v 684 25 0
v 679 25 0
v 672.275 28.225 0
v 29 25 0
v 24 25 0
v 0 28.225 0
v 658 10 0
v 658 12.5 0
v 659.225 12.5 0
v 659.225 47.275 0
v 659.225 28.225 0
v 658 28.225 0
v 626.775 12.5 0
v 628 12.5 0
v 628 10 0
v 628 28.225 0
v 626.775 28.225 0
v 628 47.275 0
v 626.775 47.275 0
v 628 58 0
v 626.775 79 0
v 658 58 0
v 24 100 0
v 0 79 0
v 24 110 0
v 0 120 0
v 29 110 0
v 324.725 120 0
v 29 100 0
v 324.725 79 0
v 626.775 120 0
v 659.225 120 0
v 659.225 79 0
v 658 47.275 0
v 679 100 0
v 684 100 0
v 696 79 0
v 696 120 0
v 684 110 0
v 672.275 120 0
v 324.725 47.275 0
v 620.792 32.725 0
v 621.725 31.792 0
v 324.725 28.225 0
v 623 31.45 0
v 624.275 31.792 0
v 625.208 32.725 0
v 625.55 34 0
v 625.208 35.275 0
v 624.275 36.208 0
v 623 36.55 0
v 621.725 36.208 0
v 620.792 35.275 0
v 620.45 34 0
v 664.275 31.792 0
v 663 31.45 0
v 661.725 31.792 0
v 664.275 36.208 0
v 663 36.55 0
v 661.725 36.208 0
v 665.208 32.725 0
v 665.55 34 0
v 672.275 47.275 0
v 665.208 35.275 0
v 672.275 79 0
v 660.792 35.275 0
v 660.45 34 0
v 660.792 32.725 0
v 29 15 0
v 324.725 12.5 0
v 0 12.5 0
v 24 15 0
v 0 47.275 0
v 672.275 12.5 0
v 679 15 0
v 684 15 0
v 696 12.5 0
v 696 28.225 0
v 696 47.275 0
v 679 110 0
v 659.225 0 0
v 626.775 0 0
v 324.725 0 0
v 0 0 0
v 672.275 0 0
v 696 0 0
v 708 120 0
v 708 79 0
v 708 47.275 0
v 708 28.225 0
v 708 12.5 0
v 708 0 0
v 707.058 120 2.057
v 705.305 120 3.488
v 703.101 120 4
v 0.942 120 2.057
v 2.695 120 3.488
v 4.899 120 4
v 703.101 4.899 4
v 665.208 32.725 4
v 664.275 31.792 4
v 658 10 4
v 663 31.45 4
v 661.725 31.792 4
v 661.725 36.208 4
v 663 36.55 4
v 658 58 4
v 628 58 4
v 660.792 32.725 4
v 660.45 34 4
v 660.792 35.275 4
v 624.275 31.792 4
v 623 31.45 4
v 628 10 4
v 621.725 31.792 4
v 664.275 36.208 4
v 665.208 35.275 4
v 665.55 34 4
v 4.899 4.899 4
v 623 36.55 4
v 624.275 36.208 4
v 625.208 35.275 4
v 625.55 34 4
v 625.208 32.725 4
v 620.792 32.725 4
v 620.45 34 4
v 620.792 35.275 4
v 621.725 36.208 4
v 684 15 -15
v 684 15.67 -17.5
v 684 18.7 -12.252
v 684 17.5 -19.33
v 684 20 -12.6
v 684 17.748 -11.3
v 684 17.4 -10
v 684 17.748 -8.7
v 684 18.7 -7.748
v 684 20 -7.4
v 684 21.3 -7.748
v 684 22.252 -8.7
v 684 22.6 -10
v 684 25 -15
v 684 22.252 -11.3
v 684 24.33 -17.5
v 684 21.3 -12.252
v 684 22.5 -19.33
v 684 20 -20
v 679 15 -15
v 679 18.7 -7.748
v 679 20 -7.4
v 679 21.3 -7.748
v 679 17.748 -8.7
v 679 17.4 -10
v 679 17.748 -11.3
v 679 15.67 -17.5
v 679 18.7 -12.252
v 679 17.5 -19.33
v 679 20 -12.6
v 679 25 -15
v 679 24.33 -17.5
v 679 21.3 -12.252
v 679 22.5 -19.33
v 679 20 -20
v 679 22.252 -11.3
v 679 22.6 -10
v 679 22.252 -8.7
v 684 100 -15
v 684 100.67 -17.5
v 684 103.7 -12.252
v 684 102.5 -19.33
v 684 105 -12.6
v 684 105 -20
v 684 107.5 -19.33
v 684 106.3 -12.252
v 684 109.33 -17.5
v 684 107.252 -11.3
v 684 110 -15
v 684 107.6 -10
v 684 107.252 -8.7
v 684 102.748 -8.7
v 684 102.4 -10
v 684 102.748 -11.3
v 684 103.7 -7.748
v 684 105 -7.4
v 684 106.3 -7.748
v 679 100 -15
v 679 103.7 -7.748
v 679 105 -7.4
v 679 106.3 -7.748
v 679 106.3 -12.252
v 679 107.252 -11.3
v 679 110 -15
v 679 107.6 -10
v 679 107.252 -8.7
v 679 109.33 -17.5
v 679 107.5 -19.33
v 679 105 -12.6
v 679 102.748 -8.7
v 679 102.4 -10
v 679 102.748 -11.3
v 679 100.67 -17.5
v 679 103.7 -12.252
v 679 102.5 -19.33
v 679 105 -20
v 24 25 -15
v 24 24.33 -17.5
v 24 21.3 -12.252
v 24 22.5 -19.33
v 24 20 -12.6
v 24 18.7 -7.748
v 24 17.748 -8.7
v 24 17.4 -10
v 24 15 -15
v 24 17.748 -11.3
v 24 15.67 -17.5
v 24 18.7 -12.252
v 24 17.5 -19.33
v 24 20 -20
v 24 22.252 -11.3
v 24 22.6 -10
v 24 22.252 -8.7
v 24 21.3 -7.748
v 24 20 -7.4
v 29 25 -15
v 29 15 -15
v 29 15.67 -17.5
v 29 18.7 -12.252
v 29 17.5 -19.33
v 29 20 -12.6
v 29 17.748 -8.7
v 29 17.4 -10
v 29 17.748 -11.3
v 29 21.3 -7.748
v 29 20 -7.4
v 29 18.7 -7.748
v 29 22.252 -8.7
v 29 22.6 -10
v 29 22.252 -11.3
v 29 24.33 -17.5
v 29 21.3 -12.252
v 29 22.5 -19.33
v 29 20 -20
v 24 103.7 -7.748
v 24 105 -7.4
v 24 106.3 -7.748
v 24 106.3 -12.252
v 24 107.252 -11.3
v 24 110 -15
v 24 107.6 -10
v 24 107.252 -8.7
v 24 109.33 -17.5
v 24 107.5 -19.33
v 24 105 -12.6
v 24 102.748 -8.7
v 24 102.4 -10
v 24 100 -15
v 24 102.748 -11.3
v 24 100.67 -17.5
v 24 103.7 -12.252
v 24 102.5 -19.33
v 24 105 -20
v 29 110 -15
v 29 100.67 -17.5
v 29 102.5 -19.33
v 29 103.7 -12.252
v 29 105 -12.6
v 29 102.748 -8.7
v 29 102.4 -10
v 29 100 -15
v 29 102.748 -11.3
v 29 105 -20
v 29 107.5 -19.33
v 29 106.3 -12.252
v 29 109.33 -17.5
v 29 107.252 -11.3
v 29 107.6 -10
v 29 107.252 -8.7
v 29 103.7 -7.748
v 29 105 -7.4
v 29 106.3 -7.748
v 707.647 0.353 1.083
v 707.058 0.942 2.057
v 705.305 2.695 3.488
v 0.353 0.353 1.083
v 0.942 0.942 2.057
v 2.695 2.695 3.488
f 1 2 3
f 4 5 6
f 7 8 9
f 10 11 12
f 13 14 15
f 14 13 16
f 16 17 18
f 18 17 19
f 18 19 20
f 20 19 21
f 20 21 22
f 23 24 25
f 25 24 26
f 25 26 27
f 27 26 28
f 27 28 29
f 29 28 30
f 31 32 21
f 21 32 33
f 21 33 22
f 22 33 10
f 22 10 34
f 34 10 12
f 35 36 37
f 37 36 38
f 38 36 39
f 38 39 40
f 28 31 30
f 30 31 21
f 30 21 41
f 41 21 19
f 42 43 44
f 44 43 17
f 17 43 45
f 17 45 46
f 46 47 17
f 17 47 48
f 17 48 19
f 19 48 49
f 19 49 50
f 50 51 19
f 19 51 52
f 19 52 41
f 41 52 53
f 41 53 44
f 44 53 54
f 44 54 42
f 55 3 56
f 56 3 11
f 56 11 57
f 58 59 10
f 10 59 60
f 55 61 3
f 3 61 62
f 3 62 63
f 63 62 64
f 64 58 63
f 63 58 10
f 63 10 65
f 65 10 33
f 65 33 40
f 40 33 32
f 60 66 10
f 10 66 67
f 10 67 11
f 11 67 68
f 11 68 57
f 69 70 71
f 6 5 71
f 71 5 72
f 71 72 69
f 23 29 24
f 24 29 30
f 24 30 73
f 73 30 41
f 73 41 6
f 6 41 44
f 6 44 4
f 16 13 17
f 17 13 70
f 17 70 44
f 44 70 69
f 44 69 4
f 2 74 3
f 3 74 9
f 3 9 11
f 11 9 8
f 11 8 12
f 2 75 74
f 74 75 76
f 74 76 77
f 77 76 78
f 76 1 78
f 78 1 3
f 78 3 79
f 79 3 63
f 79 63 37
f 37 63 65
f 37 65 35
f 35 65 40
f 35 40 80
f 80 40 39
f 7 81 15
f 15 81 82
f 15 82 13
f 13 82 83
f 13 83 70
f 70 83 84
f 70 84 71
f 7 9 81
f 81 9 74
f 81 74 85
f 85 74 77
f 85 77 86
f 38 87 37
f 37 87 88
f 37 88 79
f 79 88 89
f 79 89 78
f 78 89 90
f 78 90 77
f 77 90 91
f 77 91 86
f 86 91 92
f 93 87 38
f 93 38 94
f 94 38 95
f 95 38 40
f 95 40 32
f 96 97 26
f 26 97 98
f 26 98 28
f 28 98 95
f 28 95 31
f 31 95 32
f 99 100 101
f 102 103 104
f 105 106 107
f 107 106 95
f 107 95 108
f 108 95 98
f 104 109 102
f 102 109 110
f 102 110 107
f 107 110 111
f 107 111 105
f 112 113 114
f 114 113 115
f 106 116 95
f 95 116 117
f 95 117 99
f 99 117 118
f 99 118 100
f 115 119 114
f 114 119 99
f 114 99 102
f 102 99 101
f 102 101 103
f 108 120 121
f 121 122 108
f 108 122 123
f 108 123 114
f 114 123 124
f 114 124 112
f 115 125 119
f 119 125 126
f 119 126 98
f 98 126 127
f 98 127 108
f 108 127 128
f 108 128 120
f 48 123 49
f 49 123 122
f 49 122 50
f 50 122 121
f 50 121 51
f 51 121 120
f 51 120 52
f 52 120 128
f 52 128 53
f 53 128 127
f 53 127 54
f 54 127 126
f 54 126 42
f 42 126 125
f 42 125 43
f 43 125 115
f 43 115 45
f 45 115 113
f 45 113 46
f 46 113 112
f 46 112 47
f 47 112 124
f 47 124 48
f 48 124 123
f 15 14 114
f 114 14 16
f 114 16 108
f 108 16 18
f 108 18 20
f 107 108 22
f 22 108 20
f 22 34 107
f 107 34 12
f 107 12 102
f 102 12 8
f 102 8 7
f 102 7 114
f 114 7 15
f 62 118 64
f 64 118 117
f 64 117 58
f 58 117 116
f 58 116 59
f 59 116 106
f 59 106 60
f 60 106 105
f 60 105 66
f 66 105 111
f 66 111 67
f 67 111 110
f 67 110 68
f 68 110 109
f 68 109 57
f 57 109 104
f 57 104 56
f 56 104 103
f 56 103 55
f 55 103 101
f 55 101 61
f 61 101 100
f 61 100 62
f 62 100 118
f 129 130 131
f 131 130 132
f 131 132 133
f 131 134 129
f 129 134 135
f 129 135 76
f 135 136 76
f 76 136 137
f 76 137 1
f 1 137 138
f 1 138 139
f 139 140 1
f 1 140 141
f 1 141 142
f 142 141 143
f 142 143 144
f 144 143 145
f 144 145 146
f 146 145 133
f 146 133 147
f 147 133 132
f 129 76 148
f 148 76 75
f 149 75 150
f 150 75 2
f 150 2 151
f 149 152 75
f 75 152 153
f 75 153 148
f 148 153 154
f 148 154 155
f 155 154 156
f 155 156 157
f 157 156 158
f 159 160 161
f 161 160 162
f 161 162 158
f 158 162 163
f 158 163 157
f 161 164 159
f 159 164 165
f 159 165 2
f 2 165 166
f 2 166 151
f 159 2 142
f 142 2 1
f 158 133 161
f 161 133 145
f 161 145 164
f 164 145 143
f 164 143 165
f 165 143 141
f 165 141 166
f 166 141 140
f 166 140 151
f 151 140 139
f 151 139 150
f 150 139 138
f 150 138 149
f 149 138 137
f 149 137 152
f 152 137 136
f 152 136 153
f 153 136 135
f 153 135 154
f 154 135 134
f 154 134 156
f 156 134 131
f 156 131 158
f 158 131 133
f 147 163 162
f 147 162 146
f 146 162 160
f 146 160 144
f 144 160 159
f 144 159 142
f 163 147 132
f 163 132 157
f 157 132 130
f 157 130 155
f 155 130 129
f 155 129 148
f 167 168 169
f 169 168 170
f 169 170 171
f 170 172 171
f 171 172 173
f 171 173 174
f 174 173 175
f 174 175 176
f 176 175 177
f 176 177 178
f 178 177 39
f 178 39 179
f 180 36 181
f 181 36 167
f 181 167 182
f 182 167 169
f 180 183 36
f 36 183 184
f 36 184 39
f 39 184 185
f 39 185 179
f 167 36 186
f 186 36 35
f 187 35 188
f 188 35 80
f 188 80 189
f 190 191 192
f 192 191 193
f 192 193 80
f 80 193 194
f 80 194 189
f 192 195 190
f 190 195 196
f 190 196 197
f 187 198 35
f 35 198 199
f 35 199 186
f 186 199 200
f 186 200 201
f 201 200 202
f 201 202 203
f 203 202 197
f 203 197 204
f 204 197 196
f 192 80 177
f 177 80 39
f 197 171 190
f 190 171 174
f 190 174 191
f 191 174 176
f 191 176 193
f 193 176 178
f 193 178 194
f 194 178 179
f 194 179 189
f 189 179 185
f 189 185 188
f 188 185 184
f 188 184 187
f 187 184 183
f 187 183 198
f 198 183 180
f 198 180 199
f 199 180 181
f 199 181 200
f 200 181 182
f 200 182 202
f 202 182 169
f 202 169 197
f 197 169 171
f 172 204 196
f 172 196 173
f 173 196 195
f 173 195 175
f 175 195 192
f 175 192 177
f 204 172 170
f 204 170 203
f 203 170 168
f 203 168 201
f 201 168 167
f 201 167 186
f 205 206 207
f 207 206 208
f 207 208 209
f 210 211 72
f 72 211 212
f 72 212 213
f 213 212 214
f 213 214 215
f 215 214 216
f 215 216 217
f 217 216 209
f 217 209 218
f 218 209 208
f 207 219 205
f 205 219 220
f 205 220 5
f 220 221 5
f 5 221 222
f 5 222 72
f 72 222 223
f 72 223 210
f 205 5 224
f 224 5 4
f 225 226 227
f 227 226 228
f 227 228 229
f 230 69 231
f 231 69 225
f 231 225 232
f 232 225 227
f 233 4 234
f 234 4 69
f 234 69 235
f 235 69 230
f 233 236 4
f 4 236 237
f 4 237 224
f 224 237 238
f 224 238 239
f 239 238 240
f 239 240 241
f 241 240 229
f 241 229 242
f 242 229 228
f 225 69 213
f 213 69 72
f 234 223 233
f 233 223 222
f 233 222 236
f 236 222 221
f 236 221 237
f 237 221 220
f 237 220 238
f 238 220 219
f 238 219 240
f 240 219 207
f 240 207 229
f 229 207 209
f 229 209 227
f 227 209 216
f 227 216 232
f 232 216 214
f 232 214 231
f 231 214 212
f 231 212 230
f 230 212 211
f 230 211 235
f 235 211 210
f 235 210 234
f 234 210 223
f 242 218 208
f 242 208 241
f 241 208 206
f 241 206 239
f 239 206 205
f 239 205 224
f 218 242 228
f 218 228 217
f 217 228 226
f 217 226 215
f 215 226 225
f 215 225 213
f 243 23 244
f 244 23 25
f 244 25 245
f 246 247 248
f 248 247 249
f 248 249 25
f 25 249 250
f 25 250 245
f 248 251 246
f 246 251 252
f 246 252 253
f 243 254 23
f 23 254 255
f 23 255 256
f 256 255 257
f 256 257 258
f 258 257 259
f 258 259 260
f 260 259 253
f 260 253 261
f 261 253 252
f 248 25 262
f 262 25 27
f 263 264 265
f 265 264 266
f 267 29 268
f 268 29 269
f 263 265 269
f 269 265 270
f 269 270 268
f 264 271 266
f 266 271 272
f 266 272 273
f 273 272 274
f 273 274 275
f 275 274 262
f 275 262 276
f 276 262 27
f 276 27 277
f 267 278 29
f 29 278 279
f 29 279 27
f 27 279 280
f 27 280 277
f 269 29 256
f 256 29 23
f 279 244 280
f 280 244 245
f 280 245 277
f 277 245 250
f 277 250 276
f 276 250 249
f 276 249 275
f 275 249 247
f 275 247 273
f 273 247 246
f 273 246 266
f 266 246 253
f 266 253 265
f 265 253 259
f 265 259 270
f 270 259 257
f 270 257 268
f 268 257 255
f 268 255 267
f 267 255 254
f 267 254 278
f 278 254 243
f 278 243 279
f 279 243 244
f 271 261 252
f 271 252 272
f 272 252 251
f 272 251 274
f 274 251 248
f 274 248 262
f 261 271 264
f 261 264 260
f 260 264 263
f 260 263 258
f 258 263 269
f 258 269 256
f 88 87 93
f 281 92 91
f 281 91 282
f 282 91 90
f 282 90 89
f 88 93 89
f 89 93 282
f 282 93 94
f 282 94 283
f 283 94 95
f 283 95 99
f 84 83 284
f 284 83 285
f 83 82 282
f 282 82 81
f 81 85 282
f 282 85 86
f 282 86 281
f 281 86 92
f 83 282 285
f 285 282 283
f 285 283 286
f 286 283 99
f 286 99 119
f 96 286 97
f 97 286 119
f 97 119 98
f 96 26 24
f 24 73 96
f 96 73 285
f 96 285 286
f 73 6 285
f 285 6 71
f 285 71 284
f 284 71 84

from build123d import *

# Parameters (mm, degrees)
SKETCH1_W              = 708
SKETCH1_H              = 120
BOSS_EXTRUDE1_DEPTH    = 4
CUT_EXTRUDE1_REACH     = 720.109
SKETCH2_R              = 2.55
SKETCH2_W              = 30
SKETCH2_H              = 48
SKETCH3_W              = 5
SKETCH3_H              = 10
BOSS_EXTRUDE2_DEPTH    = 20
SKETCH4_R              = 2.6
CUT_EXTRUDE2_DEPTH     = 20
FILLET1_R              = 5
LPATTERN1_COUNT        = 2
LPATTERN1_PITCH        = 85
FILLET1_OF_LPATTERN1_R = 5
MIRROR5_START          = 24
MIRROR5_OUTLINE_R      = 2.6
MIRROR5_DEPTH          = 5
FILLET2_R              = 5


# Read off the part's stored shape, not the designer's step: Mirror5
# Some blends are built 0.0001 mm under size
with BuildPart() as part:
    # Sketch1 → Boss-Extrude1 (new body)
    with BuildSketch(Plane.XY):
        with Locations((354, 60)):
            Rectangle(SKETCH1_W, SKETCH1_H)
    extrude(amount=BOSS_EXTRUDE1_DEPTH)

    # Sketch2 → Cut-Extrude1 (cut, up to next)
    with BuildSketch(Plane.XY.offset(4), mode=Mode.PRIVATE) as cut_extrude1_sk1:
        with Locations((623, 34)):
            Circle(SKETCH2_R)
    cut_extrude1_tool1 = extrude(cut_extrude1_sk1.sketch, amount=-CUT_EXTRUDE1_REACH, mode=Mode.PRIVATE) & part.part
    # Sketch2 → Cut-Extrude1 (cut, up to next)
    with BuildSketch(Plane.XY.offset(4), mode=Mode.PRIVATE) as cut_extrude1_sk2:
        with Locations((663, 34)):
            Circle(SKETCH2_R)
    cut_extrude1_tool2 = extrude(cut_extrude1_sk2.sketch, amount=-CUT_EXTRUDE1_REACH, mode=Mode.PRIVATE) & part.part
    # Sketch2 → Cut-Extrude1 (cut, up to next)
    with BuildSketch(Plane.XY.offset(4), mode=Mode.PRIVATE) as cut_extrude1_sk3:
        with Locations((643, 34)):
            Rectangle(SKETCH2_W, SKETCH2_H)
    cut_extrude1_tool3 = extrude(cut_extrude1_sk3.sketch, amount=-CUT_EXTRUDE1_REACH, mode=Mode.PRIVATE) & part.part
    add(cut_extrude1_tool1.solids().sort_by_distance((623, 34, 4))[0], mode=Mode.SUBTRACT)
    add(cut_extrude1_tool2.solids().sort_by_distance((663, 34, 4))[0], mode=Mode.SUBTRACT)
    add(cut_extrude1_tool3.solids().sort_by_distance((643, 34, 4))[0], mode=Mode.SUBTRACT)

    # Sketch3 → Boss-Extrude2 (add)
    with BuildSketch(Plane(origin=(0, 0, 0), x_dir=(-1, 0, 0), z_dir=(0, 0, -1))):
        with Locations((-681.5, 20)):
            Rectangle(SKETCH3_W, SKETCH3_H)
    boss_extrude2 = extrude(amount=BOSS_EXTRUDE2_DEPTH)

    # Sketch4 → Cut-Extrude2 (cut)
    with BuildSketch(Plane(origin=(684, 0, 0), x_dir=(0, 0, -1), z_dir=(1, 0, 0))):
        with Locations((10, 20)):
            Circle(SKETCH4_R)
    cut_extrude2 = extrude(amount=-CUT_EXTRUDE2_DEPTH, mode=Mode.SUBTRACT)

    # Fillet1
    fillet1_edges = [part.edges().sort_by_distance(p)[0] for p in [
        (681.5, 15, -20),
        (681.5, 25, -20),
    ]]
    fillet(fillet1_edges, radius=FILLET1_R - 0.0001)  # a hair under: the kernel refuses the full size

    # LPattern1: Boss-Extrude2, Cut-Extrude2 ×2
    with Locations(*[(0, i * LPATTERN1_PITCH, 0) for i in range(1, LPATTERN1_COUNT)]):
        add(boss_extrude2)
        add(cut_extrude2, mode=Mode.SUBTRACT)

    # Fillet1 of LPattern1
    fillet1_of_lpattern1_edges = [part.edges().sort_by_distance(p)[0] for p in [
        (681.5, 100, -20),
        (681.5, 110, -20),
    ]]
    fillet(fillet1_of_lpattern1_edges, radius=FILLET1_OF_LPATTERN1_R - 0.0001)  # a hair under: the kernel refuses the full size

    # Mirror5 outline → Mirror5 (add)
    # profile 1 of 2: a face of its own
    with BuildSketch(Plane.YZ.offset(MIRROR5_START)):
        with BuildLine():
            Line((25, 0), (15, 0))
            Line((15, 0), (15, -15))
            ThreePointArc((15, -15), (16.464466094, -18.535533906), (20, -20))
            ThreePointArc((20, -20), (23.535533906, -18.535533906), (25, -15))
            Line((25, -15), (25, 0))
        make_face()
        with Locations((20, -10)):
            Circle(MIRROR5_OUTLINE_R, mode=Mode.SUBTRACT)
    # profile 2 of 2: a face of its own
    with BuildSketch(Plane.YZ.offset(MIRROR5_START)):
        with BuildLine():
            Line((110, 0), (100, 0))
            Line((100, 0), (100, -15))
            ThreePointArc((100, -15), (101.464466094, -18.535533906), (105, -20))
            ThreePointArc((105, -20), (108.535533906, -18.535533906), (110, -15))
            Line((110, -15), (110, 0))
        make_face()
        with Locations((105, -10)):
            Circle(MIRROR5_OUTLINE_R, mode=Mode.SUBTRACT)
    extrude(amount=MIRROR5_DEPTH)

    # Fillet2
    # the kernel refuses this fillet: 5 mm, written as the material it takes off along each edge
    with BuildSketch(Plane(origin=(0, 132.247448714, 4), x_dir=(1.5589751711781488e-12, 0, -1.0), z_dir=(0, -1, 0)), Plane(origin=(708, -12.247448714, 4), x_dir=(-1.5631940186717186e-12, 0, -1.0), z_dir=(0, 1, 0))) as fillet2_piece_1:
        with BuildLine():
            CenterArc((5, 4.898979486), FILLET2_R, 180, 78.463040967)
            Line((0, 4.898979486), (-0.1, 4.898979486))
            Line((-0.1, 4.898979486), (-0.1, 0))
            Line((-0.1, 0), (0, -0.1))
            ThreePointArc((0, -0.1), (2, -0.1), (3.98, -0.09797959))
            Line((3.98, -0.09797959), (4, 0))
        make_face()
    extrude(amount=144.494897428, mode=Mode.SUBTRACT)
    with BuildSketch(Plane(origin=(-12.247448714, 0, 4), x_dir=(0, 1.5725198920785669e-12, -1.0), z_dir=(1, 0, 0))) as fillet2_piece_2:
        with BuildLine():
            CenterArc((5, 4.898979486), FILLET2_R, 180, 78.463040967)
            Line((0, 4.898979486), (-0.1, 4.898979486))
            Line((-0.1, 4.898979486), (-0.1, 0))
            Line((-0.1, 0), (0, -0.1))
            ThreePointArc((0, -0.1), (2, -0.1), (3.98, -0.09797959))
            Line((3.98, -0.09797959), (4, 0))
        make_face()
    extrude(amount=732.494897428, mode=Mode.SUBTRACT)


solid = part.part
